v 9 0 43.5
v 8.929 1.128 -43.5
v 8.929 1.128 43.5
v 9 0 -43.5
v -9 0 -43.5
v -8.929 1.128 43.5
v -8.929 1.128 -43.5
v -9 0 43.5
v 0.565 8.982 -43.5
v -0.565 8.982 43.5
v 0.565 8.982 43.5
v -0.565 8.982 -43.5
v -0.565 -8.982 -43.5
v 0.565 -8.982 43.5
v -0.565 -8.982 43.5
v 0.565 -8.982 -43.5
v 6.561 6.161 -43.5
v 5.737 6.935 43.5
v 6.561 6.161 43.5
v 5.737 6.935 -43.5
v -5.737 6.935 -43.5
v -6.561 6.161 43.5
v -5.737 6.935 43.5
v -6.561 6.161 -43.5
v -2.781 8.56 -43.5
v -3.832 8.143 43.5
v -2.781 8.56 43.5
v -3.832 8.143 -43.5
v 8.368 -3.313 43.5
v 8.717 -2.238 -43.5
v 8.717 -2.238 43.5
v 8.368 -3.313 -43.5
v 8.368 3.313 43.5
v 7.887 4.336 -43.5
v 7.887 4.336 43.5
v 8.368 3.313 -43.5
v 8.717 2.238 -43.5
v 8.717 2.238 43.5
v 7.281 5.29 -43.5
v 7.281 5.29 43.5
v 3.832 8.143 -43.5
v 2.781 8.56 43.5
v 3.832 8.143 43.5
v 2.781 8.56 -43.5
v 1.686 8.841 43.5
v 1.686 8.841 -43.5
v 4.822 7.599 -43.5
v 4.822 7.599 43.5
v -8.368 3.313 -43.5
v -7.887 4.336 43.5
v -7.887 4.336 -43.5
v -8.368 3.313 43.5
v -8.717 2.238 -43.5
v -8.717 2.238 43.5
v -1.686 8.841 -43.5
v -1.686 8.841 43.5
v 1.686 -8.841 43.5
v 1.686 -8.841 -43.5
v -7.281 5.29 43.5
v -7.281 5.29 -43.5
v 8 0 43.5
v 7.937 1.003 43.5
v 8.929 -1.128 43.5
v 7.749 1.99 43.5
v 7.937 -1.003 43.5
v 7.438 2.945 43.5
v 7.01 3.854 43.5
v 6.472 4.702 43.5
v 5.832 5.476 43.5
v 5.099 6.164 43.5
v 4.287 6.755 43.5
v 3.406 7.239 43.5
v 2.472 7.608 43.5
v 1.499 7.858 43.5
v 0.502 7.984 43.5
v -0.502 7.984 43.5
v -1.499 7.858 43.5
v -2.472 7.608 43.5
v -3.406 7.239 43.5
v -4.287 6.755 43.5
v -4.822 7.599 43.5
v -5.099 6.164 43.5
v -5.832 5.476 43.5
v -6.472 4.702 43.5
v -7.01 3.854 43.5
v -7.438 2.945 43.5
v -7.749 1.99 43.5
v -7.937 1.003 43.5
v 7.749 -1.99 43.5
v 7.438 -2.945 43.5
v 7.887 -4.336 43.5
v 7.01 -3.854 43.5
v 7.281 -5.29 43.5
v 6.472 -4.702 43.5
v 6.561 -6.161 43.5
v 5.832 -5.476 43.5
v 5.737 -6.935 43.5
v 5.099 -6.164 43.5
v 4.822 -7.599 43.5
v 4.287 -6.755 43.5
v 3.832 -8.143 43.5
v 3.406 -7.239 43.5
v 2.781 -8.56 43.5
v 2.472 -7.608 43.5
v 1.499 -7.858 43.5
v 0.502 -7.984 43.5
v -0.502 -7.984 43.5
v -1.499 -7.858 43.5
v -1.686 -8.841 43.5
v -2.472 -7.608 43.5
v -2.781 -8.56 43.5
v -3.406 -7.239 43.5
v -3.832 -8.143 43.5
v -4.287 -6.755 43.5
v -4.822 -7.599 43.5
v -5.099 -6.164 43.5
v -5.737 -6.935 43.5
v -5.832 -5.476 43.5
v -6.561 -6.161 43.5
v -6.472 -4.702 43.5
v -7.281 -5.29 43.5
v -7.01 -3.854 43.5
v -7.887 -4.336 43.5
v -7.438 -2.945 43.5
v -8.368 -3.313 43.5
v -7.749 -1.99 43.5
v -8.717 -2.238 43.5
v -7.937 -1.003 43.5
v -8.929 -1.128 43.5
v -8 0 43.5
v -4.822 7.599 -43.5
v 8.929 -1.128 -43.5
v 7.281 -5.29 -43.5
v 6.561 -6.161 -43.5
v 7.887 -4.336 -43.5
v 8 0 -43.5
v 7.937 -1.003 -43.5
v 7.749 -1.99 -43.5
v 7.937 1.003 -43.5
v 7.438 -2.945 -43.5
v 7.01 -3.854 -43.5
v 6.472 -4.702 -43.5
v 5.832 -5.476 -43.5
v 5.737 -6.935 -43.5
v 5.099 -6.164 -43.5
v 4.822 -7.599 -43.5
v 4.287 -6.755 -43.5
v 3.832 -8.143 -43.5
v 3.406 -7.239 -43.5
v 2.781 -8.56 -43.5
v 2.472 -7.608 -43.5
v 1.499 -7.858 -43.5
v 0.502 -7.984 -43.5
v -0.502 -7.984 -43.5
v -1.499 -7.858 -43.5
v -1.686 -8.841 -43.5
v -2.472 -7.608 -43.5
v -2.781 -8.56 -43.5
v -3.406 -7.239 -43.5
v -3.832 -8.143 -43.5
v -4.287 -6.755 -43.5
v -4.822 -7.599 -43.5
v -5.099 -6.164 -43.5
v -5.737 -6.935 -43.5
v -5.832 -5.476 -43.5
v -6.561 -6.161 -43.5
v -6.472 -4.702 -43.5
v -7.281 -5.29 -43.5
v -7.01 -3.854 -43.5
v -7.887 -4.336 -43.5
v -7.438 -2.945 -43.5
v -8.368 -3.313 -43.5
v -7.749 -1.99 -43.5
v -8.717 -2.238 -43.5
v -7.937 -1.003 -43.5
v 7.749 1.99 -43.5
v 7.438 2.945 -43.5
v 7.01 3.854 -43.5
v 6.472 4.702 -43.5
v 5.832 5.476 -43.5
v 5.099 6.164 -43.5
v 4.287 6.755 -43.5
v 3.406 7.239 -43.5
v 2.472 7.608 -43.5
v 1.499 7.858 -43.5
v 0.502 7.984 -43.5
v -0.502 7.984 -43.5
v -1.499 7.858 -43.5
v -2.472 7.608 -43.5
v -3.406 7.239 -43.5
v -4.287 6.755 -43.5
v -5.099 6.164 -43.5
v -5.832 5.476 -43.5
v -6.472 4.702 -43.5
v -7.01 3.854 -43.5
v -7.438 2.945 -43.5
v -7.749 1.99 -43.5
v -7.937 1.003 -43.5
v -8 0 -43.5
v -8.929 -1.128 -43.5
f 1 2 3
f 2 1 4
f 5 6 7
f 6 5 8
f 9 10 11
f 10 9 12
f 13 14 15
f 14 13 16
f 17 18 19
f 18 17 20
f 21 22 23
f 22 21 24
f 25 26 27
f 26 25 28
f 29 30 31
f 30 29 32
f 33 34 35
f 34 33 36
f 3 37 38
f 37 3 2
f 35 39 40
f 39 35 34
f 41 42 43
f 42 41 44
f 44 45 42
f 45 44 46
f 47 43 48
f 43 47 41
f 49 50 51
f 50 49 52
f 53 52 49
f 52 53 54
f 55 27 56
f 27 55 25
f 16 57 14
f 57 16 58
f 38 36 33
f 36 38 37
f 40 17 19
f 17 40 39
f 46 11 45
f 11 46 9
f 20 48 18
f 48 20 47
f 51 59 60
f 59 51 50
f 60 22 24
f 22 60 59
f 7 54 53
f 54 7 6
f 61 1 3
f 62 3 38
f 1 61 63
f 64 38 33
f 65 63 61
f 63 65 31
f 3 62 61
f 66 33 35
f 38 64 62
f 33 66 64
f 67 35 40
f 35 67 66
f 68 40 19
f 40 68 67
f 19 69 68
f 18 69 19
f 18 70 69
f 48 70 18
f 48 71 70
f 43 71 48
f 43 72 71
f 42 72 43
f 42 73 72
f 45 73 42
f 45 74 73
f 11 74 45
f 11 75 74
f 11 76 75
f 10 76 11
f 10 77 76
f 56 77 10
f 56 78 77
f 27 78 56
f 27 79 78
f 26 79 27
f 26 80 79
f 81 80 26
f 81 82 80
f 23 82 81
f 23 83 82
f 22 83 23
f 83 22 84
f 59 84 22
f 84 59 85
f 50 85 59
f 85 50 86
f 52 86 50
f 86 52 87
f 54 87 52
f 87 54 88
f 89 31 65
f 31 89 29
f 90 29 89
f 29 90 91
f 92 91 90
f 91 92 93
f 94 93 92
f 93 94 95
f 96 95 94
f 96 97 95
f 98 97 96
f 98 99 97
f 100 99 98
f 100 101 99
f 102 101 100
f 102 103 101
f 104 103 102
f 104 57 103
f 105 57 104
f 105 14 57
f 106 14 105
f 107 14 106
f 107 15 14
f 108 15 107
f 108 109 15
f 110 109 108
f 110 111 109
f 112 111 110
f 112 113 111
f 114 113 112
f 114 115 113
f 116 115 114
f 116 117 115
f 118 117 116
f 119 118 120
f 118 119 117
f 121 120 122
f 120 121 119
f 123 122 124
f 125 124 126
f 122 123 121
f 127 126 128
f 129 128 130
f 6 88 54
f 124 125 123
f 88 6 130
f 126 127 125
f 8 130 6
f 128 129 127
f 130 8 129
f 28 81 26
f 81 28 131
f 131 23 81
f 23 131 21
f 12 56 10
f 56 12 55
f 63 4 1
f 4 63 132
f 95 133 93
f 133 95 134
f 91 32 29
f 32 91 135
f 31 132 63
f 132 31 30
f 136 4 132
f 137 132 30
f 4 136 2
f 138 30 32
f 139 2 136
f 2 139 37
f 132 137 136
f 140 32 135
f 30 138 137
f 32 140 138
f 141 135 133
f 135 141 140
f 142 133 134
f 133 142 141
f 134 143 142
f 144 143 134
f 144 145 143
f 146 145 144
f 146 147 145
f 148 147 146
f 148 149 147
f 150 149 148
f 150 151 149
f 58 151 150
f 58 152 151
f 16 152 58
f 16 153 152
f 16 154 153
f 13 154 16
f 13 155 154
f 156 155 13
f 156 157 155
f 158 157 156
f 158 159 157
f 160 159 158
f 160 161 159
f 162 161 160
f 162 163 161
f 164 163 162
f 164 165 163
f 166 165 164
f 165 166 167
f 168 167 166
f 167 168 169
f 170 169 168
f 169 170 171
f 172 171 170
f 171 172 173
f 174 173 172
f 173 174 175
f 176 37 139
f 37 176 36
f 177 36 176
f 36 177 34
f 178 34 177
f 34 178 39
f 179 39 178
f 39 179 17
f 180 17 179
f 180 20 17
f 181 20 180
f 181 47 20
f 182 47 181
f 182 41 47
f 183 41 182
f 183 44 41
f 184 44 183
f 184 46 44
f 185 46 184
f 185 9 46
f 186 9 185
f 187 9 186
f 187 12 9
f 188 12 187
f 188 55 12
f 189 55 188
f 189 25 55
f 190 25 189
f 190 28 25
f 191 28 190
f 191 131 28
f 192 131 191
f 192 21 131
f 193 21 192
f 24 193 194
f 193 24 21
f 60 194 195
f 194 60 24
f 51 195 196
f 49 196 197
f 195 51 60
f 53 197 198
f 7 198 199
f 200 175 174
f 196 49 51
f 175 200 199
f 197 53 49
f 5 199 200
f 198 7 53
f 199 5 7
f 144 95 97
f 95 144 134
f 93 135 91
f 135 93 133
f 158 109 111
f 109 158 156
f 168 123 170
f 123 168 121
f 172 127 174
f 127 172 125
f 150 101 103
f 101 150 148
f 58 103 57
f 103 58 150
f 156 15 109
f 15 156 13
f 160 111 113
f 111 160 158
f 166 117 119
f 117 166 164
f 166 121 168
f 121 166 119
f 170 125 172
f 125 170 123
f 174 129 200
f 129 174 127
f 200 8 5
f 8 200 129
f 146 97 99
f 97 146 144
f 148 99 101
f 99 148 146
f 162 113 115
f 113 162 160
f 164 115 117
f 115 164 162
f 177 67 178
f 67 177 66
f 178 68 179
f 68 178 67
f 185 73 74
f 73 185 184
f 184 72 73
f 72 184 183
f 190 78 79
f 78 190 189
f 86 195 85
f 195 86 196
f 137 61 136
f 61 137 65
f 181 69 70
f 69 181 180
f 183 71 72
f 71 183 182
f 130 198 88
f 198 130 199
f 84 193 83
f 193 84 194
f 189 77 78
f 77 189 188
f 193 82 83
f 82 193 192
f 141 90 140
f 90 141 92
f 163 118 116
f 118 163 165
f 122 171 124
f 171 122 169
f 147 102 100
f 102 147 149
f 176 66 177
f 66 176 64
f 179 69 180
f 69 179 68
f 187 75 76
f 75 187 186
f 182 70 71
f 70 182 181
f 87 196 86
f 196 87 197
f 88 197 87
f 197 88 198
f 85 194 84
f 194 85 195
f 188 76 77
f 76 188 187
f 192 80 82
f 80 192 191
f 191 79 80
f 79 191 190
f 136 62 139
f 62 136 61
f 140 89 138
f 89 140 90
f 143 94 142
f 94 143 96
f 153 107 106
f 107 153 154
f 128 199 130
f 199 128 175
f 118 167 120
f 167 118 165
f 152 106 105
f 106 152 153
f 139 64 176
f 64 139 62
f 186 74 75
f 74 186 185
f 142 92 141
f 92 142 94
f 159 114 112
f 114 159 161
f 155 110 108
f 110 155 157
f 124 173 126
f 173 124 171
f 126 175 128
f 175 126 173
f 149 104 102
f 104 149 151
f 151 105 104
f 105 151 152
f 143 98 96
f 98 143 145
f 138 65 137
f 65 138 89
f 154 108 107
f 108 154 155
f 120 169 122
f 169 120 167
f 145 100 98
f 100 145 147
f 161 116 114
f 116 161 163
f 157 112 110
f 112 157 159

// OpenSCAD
$fn = 50;


difference() {
	union() {
		translate(v = [0, 0, -43.5000000000]) {
			cylinder(h = 87, r = 9.0000000000);
		}
	}
	union() {
		translate(v = [0, 0, -100.0000000000]) {
			cylinder(h = 200, r = 8);
		}
	}
}
